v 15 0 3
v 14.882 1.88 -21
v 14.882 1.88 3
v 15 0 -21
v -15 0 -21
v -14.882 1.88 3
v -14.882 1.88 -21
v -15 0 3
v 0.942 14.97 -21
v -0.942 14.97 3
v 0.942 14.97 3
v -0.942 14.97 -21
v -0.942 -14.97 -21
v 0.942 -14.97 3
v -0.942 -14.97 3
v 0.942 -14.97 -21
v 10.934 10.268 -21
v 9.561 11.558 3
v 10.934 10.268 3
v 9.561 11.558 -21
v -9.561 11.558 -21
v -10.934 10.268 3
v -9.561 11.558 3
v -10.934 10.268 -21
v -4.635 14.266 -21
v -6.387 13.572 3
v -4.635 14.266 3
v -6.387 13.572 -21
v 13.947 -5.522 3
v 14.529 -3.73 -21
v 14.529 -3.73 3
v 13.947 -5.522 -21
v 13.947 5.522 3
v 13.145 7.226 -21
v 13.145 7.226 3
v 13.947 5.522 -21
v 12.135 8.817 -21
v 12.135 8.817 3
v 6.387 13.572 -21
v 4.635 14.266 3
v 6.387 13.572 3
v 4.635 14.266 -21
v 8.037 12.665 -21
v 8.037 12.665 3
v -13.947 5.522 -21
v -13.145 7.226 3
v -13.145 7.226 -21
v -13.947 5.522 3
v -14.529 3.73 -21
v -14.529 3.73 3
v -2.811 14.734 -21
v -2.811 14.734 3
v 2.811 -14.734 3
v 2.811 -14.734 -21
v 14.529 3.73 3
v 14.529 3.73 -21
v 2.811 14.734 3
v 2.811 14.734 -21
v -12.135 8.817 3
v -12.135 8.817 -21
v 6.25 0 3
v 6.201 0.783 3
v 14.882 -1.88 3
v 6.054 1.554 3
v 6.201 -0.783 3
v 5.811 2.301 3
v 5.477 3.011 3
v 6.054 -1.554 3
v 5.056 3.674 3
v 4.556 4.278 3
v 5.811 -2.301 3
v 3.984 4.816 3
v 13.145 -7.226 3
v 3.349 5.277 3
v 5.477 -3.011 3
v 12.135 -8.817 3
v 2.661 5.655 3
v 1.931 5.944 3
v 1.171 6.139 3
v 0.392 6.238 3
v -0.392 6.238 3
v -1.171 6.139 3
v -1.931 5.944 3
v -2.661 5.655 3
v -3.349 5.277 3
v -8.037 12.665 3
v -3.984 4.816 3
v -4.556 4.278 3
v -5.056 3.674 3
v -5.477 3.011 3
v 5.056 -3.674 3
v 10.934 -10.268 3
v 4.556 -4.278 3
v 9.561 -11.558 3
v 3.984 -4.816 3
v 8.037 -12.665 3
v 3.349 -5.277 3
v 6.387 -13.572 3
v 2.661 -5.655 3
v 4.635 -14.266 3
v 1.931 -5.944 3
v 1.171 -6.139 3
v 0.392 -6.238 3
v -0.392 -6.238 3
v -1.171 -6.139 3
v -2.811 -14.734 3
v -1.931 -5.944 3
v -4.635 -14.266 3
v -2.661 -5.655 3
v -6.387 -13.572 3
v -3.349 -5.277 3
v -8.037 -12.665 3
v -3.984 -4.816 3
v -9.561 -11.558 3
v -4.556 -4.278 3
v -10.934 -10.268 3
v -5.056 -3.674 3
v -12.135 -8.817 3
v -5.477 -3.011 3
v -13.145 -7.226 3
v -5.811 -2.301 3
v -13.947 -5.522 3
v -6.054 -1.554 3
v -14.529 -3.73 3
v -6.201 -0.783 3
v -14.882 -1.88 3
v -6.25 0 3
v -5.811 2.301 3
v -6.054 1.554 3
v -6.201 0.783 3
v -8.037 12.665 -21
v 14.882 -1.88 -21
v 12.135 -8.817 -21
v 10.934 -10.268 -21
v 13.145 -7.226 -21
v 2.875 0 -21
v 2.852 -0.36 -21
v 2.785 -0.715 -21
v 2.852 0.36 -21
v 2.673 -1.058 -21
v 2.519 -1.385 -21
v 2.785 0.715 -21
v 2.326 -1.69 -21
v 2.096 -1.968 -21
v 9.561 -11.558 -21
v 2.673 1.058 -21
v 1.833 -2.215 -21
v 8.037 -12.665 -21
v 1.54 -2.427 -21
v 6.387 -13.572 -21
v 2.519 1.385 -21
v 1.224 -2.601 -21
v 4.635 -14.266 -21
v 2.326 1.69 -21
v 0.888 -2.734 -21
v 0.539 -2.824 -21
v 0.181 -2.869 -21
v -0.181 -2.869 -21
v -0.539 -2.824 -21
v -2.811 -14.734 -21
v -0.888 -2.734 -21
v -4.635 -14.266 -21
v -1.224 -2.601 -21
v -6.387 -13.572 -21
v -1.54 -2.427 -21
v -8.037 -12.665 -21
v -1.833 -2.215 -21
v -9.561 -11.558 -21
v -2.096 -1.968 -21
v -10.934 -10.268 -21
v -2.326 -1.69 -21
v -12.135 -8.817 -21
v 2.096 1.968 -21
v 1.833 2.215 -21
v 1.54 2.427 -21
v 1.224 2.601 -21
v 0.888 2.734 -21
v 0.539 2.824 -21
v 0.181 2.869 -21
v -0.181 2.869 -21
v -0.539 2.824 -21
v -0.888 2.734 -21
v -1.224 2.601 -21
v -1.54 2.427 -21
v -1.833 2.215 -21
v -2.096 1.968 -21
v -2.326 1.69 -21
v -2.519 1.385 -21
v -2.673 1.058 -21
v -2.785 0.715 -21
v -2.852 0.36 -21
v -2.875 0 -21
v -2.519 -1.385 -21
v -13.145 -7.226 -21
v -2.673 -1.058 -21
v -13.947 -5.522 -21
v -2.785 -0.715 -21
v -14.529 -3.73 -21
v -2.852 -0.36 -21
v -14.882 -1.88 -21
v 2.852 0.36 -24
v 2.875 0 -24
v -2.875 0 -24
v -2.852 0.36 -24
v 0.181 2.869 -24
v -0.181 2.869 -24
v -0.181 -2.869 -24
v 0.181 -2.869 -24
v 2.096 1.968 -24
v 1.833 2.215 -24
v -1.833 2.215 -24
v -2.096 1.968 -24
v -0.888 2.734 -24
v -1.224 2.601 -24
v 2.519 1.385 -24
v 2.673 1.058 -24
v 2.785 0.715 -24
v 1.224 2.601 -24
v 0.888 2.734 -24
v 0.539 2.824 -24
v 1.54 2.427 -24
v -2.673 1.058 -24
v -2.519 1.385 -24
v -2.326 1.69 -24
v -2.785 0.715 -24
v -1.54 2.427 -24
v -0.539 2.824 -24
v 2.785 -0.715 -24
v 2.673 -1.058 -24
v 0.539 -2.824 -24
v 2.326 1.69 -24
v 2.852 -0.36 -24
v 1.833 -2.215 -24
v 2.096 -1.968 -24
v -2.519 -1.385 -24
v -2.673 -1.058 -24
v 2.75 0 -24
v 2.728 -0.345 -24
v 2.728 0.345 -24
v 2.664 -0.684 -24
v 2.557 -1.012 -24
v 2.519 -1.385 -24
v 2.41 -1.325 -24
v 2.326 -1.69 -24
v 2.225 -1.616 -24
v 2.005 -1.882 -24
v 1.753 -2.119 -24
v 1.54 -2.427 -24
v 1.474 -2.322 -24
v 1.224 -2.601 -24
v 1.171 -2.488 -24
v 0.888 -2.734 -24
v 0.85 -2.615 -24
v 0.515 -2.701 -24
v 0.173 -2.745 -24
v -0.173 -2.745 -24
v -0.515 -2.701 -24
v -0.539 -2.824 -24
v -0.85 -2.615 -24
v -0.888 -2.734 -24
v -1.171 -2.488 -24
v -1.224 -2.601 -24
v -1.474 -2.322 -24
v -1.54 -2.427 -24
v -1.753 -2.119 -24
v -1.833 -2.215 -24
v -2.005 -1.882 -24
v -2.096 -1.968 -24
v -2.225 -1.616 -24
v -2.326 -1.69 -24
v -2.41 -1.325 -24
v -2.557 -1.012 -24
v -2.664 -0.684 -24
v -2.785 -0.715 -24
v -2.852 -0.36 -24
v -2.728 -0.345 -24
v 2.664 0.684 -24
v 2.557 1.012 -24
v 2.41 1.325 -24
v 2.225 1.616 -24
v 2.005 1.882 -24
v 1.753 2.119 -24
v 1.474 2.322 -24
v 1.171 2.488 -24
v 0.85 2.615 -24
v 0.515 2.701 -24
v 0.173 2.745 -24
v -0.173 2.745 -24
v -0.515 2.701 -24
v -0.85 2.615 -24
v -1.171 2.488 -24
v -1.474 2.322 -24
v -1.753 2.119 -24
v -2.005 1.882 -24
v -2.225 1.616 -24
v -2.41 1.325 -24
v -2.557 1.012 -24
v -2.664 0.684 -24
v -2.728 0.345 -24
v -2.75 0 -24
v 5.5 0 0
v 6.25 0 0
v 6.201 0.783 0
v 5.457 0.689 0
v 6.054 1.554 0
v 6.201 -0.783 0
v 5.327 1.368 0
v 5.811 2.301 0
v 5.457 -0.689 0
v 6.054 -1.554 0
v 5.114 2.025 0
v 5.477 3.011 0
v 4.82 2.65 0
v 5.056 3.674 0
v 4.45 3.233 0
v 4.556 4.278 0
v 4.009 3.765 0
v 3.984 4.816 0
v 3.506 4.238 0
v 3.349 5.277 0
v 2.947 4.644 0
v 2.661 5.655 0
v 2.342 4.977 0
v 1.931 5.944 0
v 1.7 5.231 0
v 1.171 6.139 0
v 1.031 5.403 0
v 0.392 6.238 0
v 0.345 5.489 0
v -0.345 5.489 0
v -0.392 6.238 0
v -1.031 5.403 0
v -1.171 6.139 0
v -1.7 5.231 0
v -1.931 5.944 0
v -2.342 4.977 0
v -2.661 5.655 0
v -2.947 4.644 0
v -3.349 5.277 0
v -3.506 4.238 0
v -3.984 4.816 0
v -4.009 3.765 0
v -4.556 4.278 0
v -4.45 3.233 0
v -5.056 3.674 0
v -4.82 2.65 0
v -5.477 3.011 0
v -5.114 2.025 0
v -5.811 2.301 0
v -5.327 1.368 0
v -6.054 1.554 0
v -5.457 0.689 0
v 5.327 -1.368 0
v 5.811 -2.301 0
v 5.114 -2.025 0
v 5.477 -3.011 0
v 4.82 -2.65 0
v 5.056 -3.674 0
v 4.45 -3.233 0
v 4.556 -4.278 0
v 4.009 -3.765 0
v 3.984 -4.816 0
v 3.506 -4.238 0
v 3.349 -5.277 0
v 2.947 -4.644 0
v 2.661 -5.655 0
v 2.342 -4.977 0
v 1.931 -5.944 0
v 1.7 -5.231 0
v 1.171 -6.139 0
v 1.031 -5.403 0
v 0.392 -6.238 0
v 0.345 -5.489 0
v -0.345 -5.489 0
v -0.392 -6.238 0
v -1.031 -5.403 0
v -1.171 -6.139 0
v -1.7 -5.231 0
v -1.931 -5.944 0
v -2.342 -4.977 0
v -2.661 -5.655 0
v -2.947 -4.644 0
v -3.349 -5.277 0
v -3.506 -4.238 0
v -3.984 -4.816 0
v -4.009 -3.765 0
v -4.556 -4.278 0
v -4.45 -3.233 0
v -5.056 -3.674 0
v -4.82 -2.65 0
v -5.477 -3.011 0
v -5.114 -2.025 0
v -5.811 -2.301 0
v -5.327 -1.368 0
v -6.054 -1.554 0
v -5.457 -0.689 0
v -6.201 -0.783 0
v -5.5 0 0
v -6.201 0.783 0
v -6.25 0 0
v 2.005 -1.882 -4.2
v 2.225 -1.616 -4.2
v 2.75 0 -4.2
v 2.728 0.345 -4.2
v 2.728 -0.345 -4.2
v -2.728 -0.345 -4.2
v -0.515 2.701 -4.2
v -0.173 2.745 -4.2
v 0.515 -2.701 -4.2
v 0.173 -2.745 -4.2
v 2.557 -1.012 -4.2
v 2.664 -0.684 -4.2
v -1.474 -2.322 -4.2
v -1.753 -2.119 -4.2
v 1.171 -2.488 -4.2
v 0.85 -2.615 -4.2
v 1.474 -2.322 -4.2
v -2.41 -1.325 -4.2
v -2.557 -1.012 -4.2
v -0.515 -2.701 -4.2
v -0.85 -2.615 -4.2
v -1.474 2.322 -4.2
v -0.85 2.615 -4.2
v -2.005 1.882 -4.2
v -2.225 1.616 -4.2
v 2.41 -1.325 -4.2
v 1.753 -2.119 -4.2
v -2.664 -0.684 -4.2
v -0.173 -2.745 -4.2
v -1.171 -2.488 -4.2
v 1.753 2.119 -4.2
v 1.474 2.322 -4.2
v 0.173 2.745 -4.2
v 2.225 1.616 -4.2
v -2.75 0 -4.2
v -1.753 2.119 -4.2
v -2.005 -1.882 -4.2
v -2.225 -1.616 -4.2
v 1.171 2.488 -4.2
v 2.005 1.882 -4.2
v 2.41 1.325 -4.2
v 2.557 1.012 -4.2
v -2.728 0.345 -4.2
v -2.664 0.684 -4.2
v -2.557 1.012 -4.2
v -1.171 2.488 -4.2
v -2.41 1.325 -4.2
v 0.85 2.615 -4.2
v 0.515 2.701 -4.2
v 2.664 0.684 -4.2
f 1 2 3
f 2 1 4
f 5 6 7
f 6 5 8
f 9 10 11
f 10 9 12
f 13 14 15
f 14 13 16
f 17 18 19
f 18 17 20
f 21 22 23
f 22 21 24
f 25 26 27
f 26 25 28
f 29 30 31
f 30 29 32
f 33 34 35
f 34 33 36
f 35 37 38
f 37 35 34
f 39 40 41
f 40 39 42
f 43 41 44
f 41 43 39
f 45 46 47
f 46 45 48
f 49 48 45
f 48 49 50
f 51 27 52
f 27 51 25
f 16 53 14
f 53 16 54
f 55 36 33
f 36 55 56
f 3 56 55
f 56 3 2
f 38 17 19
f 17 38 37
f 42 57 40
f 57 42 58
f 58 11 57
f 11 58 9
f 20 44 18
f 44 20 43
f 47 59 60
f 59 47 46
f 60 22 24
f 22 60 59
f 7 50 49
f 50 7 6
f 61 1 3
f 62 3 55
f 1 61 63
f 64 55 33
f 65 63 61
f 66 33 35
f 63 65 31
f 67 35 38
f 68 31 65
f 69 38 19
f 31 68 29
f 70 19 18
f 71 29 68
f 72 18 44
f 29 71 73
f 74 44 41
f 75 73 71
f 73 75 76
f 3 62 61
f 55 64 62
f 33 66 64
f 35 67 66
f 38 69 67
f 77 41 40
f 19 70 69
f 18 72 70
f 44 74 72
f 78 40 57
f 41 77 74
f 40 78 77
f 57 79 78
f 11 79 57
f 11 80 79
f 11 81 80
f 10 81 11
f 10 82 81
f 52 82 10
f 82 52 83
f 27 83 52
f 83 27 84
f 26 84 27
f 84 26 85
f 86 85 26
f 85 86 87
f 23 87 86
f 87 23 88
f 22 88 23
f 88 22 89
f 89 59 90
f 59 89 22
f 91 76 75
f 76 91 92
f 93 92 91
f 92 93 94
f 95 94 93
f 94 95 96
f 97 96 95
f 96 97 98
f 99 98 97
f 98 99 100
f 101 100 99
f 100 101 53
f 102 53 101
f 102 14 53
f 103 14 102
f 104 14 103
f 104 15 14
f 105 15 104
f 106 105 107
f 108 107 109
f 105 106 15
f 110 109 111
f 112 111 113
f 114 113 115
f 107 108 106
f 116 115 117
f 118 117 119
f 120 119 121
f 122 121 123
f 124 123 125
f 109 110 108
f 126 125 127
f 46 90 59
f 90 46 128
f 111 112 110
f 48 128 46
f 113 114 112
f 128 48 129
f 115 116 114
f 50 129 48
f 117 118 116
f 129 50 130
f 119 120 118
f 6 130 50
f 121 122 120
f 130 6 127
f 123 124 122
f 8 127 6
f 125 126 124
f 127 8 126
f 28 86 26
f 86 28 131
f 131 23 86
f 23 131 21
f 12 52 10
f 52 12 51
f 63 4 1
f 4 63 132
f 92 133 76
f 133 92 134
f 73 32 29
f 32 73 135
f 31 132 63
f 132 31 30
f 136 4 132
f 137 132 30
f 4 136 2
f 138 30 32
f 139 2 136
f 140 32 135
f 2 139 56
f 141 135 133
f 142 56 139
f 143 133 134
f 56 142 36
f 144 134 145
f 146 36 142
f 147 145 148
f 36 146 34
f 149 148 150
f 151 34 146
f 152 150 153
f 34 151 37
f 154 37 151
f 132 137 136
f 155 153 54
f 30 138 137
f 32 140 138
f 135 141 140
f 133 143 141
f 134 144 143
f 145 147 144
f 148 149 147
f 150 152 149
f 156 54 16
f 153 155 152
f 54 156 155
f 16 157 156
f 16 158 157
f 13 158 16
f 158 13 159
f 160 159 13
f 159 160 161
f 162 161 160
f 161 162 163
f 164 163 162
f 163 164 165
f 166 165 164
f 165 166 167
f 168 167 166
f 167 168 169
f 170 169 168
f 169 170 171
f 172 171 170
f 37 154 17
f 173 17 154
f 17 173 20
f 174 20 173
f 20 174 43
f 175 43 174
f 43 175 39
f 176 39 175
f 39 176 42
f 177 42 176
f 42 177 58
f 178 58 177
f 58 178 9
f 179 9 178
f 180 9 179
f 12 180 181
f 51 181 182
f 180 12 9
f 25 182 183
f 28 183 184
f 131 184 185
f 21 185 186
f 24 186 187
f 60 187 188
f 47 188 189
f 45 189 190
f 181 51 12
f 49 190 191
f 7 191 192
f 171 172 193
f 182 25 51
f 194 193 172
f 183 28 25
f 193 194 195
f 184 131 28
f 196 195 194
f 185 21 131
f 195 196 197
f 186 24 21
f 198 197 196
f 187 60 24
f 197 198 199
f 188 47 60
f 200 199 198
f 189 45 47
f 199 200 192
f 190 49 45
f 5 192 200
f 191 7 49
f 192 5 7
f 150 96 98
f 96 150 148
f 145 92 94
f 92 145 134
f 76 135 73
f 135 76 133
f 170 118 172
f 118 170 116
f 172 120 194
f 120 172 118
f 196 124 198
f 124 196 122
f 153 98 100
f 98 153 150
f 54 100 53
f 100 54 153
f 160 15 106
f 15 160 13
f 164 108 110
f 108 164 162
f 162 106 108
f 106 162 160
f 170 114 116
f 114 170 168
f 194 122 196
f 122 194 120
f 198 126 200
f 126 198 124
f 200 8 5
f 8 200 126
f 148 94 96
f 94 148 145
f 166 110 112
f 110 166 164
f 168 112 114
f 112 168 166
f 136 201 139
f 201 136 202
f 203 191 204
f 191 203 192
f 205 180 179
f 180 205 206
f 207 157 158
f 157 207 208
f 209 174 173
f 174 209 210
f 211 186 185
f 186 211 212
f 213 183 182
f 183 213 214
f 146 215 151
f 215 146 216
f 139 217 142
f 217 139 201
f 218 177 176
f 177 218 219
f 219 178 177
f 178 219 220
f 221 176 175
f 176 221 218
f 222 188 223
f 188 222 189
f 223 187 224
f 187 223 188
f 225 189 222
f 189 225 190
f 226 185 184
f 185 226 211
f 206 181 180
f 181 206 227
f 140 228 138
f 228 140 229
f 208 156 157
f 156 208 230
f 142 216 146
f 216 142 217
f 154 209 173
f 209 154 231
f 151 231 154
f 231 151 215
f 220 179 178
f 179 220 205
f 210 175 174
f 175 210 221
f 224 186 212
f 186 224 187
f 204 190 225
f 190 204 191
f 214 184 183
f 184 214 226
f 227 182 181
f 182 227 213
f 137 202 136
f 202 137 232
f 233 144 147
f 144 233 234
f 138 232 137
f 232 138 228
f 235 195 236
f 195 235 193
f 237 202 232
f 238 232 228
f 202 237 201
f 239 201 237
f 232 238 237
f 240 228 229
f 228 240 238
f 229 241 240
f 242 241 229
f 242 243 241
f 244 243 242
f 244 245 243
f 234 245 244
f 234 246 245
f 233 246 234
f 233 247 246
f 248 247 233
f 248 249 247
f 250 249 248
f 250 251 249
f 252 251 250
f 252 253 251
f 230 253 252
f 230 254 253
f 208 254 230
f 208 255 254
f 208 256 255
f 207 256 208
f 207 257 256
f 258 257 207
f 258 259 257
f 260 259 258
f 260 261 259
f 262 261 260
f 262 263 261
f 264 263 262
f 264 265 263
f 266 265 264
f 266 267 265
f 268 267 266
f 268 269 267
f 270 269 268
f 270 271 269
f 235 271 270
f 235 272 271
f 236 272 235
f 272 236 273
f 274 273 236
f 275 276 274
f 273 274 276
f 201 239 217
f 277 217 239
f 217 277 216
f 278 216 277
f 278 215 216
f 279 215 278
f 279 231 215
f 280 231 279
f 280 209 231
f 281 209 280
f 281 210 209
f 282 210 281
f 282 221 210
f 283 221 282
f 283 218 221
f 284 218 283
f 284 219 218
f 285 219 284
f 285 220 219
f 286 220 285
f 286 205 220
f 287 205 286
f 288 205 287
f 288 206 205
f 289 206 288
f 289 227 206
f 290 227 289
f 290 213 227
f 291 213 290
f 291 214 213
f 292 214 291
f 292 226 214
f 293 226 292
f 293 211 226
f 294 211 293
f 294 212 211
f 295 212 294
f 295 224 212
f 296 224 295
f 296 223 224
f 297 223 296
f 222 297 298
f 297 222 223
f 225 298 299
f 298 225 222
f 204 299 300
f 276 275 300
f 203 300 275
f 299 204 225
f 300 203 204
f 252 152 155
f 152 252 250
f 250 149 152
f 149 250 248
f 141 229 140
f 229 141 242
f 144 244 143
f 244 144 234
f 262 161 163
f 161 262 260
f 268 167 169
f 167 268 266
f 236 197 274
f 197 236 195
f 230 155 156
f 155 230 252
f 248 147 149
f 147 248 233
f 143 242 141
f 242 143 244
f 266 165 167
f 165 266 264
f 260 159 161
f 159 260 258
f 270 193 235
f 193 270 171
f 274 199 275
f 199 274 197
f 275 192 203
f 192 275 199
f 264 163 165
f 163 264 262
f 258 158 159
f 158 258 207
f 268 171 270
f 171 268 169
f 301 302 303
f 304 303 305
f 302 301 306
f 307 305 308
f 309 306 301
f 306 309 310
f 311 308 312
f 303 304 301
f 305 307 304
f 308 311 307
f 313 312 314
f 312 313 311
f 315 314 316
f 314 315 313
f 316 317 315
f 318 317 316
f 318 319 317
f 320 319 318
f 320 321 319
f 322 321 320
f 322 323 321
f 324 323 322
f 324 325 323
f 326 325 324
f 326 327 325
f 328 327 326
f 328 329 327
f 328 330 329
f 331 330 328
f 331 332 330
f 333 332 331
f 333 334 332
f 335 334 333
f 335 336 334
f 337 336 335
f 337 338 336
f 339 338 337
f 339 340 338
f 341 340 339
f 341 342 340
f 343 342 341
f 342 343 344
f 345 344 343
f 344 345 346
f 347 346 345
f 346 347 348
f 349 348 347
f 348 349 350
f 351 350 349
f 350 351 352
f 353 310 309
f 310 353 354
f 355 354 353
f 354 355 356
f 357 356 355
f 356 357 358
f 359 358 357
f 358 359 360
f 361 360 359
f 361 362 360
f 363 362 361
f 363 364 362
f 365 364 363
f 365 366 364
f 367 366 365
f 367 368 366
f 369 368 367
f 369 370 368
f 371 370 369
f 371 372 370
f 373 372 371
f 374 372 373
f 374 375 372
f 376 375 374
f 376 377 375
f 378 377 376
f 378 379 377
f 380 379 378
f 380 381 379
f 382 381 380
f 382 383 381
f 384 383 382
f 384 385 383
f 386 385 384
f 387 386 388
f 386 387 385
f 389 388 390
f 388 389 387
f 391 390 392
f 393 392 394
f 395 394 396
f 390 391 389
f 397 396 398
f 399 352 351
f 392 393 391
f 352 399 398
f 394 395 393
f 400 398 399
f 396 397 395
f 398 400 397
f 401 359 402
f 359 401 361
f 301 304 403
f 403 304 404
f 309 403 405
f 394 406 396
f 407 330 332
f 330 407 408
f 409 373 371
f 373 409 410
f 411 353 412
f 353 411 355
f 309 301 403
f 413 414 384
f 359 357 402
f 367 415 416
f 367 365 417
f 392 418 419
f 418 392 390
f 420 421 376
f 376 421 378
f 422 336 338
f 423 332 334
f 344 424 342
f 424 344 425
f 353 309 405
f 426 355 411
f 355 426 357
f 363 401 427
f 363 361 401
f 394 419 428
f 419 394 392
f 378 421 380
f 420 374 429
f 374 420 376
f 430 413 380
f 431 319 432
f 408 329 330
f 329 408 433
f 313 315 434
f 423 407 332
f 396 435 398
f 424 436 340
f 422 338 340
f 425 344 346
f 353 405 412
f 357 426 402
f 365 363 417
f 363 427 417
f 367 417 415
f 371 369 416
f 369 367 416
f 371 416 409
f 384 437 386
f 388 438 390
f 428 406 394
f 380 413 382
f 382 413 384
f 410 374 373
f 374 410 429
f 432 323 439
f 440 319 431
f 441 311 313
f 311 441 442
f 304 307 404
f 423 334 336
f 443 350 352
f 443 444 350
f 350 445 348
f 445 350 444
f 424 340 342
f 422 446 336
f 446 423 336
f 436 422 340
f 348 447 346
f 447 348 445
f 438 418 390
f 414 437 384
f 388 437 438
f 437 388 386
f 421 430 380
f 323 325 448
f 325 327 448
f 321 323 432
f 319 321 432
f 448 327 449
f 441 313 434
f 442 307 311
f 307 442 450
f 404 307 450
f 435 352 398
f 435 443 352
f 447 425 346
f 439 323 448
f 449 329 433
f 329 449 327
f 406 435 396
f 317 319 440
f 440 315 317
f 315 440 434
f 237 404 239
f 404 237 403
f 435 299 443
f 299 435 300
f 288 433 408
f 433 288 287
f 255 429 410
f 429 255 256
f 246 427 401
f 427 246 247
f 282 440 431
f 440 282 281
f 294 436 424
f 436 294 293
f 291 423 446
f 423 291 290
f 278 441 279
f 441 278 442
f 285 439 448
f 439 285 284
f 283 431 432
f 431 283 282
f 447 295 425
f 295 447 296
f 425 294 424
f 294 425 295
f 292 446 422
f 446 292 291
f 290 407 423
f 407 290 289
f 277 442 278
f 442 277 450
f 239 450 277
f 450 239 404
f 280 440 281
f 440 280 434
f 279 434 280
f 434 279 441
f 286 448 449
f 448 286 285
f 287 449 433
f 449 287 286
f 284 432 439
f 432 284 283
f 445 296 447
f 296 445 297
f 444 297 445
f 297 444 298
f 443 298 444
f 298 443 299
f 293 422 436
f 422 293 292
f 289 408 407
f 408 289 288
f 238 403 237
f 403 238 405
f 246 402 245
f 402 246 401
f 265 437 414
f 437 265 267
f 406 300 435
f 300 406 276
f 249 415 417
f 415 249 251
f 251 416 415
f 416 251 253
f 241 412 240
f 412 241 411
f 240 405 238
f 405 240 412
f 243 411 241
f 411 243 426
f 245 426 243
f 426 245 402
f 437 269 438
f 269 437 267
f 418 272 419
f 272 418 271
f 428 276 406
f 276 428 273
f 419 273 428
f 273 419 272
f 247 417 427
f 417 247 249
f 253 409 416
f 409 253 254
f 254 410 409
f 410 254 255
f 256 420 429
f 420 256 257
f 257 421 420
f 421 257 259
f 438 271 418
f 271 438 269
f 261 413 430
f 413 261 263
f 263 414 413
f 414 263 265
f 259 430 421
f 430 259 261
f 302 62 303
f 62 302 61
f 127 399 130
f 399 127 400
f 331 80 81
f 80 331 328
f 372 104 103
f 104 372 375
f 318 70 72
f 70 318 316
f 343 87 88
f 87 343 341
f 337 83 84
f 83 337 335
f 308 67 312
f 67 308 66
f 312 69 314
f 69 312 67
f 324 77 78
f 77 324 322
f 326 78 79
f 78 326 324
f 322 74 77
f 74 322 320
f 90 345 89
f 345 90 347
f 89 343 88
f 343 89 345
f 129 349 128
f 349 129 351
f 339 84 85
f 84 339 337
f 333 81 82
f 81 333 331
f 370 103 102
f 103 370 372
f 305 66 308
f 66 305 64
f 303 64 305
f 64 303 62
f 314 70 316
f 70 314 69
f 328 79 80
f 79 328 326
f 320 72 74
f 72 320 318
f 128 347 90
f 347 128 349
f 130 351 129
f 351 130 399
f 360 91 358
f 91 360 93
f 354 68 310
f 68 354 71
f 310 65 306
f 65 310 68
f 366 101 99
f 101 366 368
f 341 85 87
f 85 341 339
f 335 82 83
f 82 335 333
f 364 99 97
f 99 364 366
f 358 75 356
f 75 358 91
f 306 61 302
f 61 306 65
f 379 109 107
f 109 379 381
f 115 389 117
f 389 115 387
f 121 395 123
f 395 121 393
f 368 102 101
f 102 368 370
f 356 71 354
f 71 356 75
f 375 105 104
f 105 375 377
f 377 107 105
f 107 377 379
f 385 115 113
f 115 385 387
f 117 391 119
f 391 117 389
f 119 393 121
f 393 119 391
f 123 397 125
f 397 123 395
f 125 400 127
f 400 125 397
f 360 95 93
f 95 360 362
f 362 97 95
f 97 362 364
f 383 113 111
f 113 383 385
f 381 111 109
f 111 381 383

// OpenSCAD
$fn = 50;


difference() {
	union() {
		translate(v = [0, 0, -21.0000000000]) {
			cylinder(h = 24, r = 15.0000000000);
		}
		#translate(v = [0, 0, -24.0000000000]) {
			cylinder(h = 24, r = 2.8750000000);
		}
	}
	union() {
		translate(v = [0, 0, 0]) {
			rotate(a = [0, 0, 0]) {
				difference() {
					union() {
						translate(v = [0, 0, -24.0000000000]) {
							cylinder(h = 24, r = 2.2500000000);
						}
						translate(v = [0, 0, -4.2000000000]) {
							cylinder(h = 4.2000000000, r1 = 2.7500000000, r2 = 5.5000000000);
						}
						translate(v = [0, 0, -24.0000000000]) {
							cylinder(h = 24, r = 2.7500000000);
						}
						translate(v = [0, 0, -24.0000000000]) {
							cylinder(h = 24, r = 2.2500000000);
						}
					}
					union();
				}
			}
		}
		#cylinder(h = 3, r = 6.2500000000);
	}
}
